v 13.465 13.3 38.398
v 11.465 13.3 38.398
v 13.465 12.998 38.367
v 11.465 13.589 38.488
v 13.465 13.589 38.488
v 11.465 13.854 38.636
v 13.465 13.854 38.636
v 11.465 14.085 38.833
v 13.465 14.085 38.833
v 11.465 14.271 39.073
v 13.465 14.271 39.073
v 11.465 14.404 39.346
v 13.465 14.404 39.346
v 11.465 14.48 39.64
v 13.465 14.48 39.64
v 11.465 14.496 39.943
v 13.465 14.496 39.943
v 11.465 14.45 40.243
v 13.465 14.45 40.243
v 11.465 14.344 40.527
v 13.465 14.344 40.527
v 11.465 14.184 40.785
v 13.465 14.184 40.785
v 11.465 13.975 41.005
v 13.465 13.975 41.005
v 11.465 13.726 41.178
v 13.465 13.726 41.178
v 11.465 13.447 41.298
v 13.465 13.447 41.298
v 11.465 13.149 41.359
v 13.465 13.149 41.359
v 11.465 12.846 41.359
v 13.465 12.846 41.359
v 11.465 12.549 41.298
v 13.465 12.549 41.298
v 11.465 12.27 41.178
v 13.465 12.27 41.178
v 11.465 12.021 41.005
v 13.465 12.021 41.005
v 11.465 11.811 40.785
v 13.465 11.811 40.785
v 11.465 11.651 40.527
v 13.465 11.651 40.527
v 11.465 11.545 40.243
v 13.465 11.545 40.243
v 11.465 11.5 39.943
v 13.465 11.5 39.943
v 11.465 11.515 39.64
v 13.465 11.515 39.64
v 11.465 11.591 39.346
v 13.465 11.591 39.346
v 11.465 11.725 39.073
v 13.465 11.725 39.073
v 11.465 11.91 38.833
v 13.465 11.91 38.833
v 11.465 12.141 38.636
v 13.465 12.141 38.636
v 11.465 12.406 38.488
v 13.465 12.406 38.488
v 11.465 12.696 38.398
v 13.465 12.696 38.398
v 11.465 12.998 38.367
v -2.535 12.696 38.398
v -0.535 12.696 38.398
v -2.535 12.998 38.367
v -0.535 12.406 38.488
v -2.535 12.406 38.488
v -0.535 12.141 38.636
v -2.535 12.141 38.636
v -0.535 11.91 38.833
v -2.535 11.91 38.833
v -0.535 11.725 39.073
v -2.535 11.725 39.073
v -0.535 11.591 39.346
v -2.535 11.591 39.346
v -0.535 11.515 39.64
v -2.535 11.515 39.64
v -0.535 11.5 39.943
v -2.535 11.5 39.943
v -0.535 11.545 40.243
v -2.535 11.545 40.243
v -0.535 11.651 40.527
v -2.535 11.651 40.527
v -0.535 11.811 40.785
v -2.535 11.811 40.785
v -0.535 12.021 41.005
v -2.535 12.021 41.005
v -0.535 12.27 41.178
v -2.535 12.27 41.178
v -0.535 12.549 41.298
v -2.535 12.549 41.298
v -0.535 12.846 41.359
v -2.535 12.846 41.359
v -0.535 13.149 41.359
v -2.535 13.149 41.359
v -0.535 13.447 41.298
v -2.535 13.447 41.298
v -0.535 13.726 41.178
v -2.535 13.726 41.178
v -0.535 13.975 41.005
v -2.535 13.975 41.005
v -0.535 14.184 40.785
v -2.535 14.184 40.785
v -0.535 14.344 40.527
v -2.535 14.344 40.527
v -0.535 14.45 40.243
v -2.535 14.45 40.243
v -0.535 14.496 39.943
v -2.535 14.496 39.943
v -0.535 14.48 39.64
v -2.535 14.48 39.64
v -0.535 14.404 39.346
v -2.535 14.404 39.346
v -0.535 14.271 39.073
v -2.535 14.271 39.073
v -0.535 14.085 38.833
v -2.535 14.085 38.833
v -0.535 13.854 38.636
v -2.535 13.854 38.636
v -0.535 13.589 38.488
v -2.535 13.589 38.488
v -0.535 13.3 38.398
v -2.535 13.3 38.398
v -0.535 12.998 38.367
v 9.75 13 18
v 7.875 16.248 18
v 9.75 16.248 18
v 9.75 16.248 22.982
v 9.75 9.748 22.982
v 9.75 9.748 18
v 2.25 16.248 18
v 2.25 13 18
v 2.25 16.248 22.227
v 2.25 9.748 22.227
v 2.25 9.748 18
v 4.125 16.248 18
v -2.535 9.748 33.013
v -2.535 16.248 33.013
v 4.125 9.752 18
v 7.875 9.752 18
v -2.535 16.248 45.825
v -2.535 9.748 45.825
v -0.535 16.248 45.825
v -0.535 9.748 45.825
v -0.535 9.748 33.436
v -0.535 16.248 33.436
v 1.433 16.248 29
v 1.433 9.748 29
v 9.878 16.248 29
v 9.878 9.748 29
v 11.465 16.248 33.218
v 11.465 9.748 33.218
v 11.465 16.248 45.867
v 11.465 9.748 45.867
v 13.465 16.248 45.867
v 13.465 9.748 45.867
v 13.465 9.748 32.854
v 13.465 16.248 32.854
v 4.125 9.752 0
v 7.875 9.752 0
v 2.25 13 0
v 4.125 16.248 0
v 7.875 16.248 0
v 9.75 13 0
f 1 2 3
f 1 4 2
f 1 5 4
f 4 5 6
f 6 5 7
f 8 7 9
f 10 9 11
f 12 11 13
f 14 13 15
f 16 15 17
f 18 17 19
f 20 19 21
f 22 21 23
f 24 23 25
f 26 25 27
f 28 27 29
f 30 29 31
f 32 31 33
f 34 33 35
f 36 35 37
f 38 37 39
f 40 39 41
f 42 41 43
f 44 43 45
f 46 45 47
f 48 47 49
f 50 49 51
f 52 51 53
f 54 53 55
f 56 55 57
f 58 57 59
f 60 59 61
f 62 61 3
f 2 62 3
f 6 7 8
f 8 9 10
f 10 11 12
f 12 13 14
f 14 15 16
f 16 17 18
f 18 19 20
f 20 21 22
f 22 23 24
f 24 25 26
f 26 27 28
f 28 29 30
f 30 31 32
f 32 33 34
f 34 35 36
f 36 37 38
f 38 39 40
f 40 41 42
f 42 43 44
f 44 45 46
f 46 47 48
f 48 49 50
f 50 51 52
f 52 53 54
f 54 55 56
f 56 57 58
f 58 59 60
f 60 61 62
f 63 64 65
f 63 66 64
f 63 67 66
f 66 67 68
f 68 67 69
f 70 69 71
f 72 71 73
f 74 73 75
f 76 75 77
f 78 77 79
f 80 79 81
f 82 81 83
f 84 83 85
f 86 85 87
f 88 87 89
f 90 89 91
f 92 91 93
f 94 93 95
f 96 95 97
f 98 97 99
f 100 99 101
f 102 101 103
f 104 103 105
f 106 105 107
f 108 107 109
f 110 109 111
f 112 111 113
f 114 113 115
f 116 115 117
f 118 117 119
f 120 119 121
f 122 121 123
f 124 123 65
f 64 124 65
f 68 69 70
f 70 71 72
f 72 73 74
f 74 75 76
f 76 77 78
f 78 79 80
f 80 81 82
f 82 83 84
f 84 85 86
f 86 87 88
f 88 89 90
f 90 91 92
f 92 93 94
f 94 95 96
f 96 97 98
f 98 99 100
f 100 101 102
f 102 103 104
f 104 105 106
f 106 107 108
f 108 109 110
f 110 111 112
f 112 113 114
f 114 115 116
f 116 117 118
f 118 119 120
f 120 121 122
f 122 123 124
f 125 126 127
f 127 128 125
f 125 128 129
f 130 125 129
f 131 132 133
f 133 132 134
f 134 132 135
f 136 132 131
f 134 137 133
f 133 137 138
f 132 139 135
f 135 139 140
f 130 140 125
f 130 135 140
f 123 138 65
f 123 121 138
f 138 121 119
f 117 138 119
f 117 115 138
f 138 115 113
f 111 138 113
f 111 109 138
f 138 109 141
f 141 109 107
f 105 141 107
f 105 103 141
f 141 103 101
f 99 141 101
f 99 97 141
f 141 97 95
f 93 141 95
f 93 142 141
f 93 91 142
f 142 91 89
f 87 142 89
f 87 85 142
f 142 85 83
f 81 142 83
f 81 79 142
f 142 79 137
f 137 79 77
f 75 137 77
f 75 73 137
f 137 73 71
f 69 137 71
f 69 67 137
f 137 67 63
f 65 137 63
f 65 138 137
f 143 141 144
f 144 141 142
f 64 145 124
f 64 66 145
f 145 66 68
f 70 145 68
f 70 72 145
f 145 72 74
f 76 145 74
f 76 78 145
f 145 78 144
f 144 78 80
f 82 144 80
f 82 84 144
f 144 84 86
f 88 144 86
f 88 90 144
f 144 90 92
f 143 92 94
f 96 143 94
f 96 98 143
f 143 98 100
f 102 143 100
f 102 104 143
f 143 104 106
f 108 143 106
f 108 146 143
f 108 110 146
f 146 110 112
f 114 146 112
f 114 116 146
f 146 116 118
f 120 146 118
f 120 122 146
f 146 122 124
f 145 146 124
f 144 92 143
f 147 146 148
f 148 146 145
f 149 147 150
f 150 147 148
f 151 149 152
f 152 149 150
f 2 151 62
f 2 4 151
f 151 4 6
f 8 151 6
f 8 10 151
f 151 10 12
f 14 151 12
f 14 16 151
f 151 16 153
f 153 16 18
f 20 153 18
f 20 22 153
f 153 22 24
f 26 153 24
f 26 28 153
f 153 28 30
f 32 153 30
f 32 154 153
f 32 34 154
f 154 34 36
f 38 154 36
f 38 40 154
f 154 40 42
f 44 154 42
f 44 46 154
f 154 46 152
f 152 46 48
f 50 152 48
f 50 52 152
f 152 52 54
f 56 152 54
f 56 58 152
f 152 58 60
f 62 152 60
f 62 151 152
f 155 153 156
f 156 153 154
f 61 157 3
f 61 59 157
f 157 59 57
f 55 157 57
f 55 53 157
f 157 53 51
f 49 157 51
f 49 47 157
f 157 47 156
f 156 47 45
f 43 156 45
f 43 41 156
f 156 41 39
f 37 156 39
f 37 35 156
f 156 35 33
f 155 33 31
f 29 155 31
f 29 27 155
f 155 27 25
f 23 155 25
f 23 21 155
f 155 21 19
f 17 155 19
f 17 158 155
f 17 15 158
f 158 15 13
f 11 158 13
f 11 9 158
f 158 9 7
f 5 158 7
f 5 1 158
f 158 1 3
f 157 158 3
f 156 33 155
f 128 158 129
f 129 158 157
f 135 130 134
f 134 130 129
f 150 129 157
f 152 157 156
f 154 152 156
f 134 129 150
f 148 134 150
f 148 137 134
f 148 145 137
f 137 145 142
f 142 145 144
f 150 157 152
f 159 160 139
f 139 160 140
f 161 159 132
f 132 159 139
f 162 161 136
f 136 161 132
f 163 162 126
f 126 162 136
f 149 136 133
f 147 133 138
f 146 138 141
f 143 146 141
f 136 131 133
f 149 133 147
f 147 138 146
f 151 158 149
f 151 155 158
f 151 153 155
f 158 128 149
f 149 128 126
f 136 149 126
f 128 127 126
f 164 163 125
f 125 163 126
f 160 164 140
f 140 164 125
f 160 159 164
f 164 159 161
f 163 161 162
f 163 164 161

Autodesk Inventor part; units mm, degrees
ref_plane "YZ Plane" through (0, 0, 0) normal (1, 0, 0) x (0, 1, 0)
ref_plane "XZ Plane" through (0, 0, 0) normal (0, 1, 0) x (-1, 0, 0)
ref_plane "XY Plane" through (0, 0, 0) normal (0, 0, 1) x (1, 0, 0)
sketch "Sketch1" plane through (0, 0, 0) normal (0, 0, 1) x (1, 0, 0)
  line L0 (9.75, 13) -> (7.875, 9.7524)
  line L1 (7.875, 9.7524) -> (4.125, 9.7524)
  line L2 (4.125, 9.7524) -> (2.25, 13)
  line L3 (2.25, 13) -> (4.125, 16.2476)
  line L4 (4.125, 16.2476) -> (7.875, 16.2476)
  line L5 (7.875, 16.2476) -> (9.75, 13)
  point P0 (0, 0)
  point P1 (6, 13)
  dimension "d0" = 7.5
extrude "Extrusion1" add sketch "Sketch1" along normal blind 18
sketch "Sketch2" plane through (4.125, 16.2476, 0) normal (0, 1, 0) x (1, 0, 0)
  line L0 (3.75, -18) -> (5.625, -18) projected
  line L1 (3.75, -18) -> (0, -18) projected
  line L2 (0, -18) -> (-6.6597, -33.0128)
  line L3 (-1.875, 0) -> (-1.875, -18) projected
  line L4 (-6.6597, -45.8247) -> (-6.6597, -33.0128)
  line L5 (3.75, -18) -> (1.875, -18)
  line L6 (9.3403, -45.8668) -> (9.3403, -32.8539)
  line L7 (9.3403, -32.8539) -> (3.75, -18)
  line L8 (9.3403, -45.8668) -> (7.3403, -45.8668)
  line L9 (7.3403, -45.8668) -> (7.3403, -33.2178)
  line L10 (-6.6597, -45.8247) -> (-4.6597, -45.8247)
  line L11 (-4.6597, -45.8247) -> (-4.6597, -33.4364)
  line L12 (2.1735, -18.0436) -> (2.158, -18)
  line L13 (1.875, -29) -> (5.7529, -29)
  line L14 (-2.6917, -29) -> (1.875, -29)
  line L15 (-4.6597, -33.4364) -> (-2.6917, -29)
  line L16 (5.7529, -29) -> (7.3403, -33.2178)
  line L17 (1.875, -18) -> (1.875, -45.8247)
  point P0 (-4.125, 0)
  dimension "d12" = 2
  dimension "d13" = 2
  dimension "d16" = 27.8247
  dimension "d17" = 11
  dimension "d21" = 12
  dimension "d31" = 2
  dimension "d32" = 2
extrude "Extrusion2" add sketch "Sketch2" against normal blind 6.5
sketch "Sketch3" plane through (-2.5347, 9.7476, 33.0128) normal (-0.9141, 0, -0.4055) x (-0.4055, 0, 0.9141)
  point P0 (-31.2047, -9.7476)
sketch "Sketch5" plane through (4.125, 16.2476, 0) normal (0, 1, 0) x (1, 0, 0)
  line L0 (-1.875, -18) -> (0, -18) projected
  line L1 (-1.875, -18) -> (-1.875, -22.2268)
  line L2 (0, -18) -> (-6.6597, -33.0128) projected
  line L3 (3.75, -18) -> (5.625, -18) projected
  line L4 (5.625, -18) -> (5.625, -22.982)
  line L5 (9.3403, -32.8539) -> (3.75, -18) projected
  point P0 (-4.125, 0)
extrude "Extrusion3" add sketch "Sketch5" against normal blind 6.5
sketch "Sketch6" plane through (13.4653, 16.2476, 45.8668) normal (1, 0, 0) x (0, 0, -1)
  line L0 (0, 0) -> (0, -3.25)
  line L1 (0, 0) -> (0, -6.5) projected
  line L2 (0, -3.25) -> (6, -3.25)
  circle A0 centre (6, -3.25) radius 1.5
  point P0 (45.8668, -16.2476)
  dimension "d27" = 6
  dimension "d28" = 3
extrude "Extrusion4" cut sketch "Sketch6" against normal through all
properties part number "Test de pincev2"
